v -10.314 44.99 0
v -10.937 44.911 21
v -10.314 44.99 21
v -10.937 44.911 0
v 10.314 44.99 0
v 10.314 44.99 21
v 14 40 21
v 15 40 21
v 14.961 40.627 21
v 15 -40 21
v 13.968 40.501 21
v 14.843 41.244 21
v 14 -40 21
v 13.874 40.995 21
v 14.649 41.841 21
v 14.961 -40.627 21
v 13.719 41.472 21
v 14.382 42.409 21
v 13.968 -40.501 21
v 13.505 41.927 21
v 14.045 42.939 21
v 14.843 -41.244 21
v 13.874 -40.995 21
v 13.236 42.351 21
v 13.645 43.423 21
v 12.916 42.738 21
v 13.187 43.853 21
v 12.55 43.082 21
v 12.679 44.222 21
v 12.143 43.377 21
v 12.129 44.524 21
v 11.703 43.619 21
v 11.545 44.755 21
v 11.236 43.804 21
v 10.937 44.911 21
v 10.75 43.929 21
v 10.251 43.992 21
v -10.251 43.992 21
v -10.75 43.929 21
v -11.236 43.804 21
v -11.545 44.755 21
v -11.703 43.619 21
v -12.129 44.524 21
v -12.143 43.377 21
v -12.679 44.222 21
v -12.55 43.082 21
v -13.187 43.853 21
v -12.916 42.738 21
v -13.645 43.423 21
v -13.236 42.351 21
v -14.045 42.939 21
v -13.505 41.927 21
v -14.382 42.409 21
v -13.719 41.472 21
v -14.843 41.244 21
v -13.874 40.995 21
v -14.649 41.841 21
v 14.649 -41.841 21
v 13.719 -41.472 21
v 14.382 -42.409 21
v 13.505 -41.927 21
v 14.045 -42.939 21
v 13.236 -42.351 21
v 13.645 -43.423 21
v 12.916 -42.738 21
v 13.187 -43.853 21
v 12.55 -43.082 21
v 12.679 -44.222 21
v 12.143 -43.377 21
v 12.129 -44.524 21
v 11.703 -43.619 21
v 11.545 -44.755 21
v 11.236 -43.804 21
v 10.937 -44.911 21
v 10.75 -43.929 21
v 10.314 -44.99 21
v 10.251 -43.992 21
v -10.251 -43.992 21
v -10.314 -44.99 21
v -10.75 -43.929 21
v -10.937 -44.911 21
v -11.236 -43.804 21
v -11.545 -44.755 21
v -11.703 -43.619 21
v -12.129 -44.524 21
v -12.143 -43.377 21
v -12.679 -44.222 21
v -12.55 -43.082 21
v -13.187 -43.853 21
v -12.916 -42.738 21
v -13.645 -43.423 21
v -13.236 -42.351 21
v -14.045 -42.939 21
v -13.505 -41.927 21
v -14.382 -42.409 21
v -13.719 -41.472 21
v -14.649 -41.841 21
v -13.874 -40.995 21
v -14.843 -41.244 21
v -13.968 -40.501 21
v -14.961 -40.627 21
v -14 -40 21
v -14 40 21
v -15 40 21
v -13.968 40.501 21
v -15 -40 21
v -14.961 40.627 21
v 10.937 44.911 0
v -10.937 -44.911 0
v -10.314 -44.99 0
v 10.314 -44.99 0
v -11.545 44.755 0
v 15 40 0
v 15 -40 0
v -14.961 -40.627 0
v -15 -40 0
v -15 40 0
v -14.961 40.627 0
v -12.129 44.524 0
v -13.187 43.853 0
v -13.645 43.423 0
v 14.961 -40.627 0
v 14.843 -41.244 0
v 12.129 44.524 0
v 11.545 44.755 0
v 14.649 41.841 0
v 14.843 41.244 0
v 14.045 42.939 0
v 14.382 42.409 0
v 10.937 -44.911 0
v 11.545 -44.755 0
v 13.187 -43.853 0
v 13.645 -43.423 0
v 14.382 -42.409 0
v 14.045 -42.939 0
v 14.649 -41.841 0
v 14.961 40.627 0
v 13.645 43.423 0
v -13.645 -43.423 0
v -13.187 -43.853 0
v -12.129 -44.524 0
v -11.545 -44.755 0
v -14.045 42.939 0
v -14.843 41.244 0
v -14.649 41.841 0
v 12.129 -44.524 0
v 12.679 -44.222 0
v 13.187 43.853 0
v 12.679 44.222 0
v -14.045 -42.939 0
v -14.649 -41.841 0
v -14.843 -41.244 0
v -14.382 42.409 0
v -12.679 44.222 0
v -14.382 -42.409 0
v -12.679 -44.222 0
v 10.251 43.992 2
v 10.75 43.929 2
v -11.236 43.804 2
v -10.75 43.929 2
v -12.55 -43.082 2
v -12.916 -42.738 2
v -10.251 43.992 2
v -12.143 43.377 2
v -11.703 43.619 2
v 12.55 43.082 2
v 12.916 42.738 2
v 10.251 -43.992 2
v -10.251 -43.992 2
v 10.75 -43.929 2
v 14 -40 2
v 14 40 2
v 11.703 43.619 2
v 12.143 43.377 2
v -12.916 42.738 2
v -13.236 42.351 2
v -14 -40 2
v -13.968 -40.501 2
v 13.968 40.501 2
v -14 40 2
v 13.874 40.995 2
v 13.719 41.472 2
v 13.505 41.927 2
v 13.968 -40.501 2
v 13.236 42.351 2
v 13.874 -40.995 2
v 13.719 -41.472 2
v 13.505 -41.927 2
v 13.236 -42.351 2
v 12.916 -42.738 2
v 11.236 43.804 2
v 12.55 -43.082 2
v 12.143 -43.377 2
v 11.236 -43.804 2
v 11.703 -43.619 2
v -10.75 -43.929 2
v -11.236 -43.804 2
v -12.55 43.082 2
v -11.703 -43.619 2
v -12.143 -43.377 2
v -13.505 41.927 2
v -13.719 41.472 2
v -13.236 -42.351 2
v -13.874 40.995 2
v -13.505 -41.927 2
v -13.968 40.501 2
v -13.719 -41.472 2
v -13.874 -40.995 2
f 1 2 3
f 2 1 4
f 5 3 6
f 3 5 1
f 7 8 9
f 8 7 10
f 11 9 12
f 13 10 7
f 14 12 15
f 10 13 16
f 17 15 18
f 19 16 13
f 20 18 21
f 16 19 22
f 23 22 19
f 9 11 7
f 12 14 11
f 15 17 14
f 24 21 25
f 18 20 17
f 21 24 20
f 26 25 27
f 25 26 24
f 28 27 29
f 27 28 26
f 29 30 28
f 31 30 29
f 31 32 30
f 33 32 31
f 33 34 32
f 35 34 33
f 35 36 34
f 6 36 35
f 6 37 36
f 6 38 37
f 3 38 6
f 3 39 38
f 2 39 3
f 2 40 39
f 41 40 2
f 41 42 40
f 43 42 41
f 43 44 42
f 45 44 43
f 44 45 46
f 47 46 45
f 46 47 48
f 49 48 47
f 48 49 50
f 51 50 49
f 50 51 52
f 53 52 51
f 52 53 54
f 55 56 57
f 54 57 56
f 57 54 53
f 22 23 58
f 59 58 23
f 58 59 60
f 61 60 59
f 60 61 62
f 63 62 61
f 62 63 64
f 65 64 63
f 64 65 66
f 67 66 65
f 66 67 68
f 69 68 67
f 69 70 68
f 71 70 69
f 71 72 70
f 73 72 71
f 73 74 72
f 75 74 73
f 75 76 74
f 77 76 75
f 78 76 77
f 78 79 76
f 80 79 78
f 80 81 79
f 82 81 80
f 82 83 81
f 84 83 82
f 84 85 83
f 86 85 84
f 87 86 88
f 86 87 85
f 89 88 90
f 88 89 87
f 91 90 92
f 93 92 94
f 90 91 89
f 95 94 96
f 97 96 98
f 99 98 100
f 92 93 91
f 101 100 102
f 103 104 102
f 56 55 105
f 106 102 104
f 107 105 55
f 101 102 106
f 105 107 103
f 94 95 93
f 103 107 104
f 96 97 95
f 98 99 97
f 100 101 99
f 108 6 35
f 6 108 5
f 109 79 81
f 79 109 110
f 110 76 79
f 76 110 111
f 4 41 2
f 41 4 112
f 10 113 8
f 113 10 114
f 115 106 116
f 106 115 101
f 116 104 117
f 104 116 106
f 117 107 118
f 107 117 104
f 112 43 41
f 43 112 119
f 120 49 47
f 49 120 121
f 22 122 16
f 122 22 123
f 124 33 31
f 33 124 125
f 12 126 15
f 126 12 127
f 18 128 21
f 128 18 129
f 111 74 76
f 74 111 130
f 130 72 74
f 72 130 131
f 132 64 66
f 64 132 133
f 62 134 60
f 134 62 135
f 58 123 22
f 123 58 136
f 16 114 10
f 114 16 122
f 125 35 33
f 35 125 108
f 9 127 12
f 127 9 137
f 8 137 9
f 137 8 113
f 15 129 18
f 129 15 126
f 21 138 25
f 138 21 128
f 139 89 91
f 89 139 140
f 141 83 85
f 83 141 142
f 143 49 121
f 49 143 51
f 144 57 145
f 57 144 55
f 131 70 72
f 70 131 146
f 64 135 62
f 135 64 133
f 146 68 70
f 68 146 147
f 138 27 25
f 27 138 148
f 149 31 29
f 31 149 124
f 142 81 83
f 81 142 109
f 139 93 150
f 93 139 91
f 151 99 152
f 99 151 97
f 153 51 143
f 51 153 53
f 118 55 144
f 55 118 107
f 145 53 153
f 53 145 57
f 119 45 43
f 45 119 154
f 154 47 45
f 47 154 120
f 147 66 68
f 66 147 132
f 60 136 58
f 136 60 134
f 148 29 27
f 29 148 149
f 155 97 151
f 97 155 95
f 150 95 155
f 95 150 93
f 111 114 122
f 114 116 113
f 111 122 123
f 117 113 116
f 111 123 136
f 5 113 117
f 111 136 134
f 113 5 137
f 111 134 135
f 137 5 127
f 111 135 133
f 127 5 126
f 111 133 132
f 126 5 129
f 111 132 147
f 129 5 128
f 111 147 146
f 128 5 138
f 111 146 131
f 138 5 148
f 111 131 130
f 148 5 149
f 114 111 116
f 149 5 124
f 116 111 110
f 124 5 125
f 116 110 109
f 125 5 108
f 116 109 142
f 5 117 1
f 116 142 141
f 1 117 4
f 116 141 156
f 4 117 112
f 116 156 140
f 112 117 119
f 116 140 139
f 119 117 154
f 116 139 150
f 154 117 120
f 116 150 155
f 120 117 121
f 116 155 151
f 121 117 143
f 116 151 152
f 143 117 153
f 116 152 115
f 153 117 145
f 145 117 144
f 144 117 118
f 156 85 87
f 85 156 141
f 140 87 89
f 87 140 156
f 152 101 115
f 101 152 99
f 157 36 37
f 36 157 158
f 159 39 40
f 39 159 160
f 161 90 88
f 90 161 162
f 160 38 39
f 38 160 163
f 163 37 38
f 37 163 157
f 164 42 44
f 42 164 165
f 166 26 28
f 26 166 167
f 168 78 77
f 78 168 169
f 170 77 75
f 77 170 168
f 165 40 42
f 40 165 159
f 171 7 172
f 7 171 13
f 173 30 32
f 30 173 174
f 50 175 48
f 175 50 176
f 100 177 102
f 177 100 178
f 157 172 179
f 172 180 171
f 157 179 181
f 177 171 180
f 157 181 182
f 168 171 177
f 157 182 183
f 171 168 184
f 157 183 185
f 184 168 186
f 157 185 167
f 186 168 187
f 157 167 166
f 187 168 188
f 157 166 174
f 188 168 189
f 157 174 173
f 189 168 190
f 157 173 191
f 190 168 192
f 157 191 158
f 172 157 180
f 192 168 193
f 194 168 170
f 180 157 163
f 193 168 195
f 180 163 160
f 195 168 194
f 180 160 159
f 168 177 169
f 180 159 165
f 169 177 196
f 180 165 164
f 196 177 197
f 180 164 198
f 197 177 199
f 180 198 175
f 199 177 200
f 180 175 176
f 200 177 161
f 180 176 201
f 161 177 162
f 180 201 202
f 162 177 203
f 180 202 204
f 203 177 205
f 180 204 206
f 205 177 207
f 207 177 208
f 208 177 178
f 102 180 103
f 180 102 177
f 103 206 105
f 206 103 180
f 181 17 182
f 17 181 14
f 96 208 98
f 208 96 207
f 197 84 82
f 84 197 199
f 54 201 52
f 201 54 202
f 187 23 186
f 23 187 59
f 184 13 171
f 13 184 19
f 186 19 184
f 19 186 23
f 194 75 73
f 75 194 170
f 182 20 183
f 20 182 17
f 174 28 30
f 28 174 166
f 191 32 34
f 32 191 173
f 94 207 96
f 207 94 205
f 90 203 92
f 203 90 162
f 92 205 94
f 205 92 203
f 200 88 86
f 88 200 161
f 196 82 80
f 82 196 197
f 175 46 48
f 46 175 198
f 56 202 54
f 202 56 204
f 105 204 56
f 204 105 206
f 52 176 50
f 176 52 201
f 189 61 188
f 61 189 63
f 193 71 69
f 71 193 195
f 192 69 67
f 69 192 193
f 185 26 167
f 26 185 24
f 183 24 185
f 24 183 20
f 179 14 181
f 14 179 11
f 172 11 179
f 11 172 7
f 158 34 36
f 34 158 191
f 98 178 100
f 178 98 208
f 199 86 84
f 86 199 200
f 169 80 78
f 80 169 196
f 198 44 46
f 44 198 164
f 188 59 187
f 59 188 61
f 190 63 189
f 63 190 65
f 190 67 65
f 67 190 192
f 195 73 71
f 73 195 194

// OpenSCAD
$fn = 50;


difference() {
	union() {
		hull() {
			translate(v = [-10.0000000000, 40.0000000000, 0]) {
				cylinder(h = 21, r = 5);
			}
			translate(v = [10.0000000000, 40.0000000000, 0]) {
				cylinder(h = 21, r = 5);
			}
			translate(v = [-10.0000000000, -40.0000000000, 0]) {
				cylinder(h = 21, r = 5);
			}
			translate(v = [10.0000000000, -40.0000000000, 0]) {
				cylinder(h = 21, r = 5);
			}
		}
	}
	union() {
		translate(v = [0, 0, 2]) {
			hull() {
				translate(v = [-10.0000000000, 40.0000000000, 0]) {
					cylinder(h = 19, r = 4);
				}
				translate(v = [10.0000000000, 40.0000000000, 0]) {
					cylinder(h = 19, r = 4);
				}
				translate(v = [-10.0000000000, -40.0000000000, 0]) {
					cylinder(h = 19, r = 4);
				}
				translate(v = [10.0000000000, -40.0000000000, 0]) {
					cylinder(h = 19, r = 4);
				}
			}
		}
	}
}
